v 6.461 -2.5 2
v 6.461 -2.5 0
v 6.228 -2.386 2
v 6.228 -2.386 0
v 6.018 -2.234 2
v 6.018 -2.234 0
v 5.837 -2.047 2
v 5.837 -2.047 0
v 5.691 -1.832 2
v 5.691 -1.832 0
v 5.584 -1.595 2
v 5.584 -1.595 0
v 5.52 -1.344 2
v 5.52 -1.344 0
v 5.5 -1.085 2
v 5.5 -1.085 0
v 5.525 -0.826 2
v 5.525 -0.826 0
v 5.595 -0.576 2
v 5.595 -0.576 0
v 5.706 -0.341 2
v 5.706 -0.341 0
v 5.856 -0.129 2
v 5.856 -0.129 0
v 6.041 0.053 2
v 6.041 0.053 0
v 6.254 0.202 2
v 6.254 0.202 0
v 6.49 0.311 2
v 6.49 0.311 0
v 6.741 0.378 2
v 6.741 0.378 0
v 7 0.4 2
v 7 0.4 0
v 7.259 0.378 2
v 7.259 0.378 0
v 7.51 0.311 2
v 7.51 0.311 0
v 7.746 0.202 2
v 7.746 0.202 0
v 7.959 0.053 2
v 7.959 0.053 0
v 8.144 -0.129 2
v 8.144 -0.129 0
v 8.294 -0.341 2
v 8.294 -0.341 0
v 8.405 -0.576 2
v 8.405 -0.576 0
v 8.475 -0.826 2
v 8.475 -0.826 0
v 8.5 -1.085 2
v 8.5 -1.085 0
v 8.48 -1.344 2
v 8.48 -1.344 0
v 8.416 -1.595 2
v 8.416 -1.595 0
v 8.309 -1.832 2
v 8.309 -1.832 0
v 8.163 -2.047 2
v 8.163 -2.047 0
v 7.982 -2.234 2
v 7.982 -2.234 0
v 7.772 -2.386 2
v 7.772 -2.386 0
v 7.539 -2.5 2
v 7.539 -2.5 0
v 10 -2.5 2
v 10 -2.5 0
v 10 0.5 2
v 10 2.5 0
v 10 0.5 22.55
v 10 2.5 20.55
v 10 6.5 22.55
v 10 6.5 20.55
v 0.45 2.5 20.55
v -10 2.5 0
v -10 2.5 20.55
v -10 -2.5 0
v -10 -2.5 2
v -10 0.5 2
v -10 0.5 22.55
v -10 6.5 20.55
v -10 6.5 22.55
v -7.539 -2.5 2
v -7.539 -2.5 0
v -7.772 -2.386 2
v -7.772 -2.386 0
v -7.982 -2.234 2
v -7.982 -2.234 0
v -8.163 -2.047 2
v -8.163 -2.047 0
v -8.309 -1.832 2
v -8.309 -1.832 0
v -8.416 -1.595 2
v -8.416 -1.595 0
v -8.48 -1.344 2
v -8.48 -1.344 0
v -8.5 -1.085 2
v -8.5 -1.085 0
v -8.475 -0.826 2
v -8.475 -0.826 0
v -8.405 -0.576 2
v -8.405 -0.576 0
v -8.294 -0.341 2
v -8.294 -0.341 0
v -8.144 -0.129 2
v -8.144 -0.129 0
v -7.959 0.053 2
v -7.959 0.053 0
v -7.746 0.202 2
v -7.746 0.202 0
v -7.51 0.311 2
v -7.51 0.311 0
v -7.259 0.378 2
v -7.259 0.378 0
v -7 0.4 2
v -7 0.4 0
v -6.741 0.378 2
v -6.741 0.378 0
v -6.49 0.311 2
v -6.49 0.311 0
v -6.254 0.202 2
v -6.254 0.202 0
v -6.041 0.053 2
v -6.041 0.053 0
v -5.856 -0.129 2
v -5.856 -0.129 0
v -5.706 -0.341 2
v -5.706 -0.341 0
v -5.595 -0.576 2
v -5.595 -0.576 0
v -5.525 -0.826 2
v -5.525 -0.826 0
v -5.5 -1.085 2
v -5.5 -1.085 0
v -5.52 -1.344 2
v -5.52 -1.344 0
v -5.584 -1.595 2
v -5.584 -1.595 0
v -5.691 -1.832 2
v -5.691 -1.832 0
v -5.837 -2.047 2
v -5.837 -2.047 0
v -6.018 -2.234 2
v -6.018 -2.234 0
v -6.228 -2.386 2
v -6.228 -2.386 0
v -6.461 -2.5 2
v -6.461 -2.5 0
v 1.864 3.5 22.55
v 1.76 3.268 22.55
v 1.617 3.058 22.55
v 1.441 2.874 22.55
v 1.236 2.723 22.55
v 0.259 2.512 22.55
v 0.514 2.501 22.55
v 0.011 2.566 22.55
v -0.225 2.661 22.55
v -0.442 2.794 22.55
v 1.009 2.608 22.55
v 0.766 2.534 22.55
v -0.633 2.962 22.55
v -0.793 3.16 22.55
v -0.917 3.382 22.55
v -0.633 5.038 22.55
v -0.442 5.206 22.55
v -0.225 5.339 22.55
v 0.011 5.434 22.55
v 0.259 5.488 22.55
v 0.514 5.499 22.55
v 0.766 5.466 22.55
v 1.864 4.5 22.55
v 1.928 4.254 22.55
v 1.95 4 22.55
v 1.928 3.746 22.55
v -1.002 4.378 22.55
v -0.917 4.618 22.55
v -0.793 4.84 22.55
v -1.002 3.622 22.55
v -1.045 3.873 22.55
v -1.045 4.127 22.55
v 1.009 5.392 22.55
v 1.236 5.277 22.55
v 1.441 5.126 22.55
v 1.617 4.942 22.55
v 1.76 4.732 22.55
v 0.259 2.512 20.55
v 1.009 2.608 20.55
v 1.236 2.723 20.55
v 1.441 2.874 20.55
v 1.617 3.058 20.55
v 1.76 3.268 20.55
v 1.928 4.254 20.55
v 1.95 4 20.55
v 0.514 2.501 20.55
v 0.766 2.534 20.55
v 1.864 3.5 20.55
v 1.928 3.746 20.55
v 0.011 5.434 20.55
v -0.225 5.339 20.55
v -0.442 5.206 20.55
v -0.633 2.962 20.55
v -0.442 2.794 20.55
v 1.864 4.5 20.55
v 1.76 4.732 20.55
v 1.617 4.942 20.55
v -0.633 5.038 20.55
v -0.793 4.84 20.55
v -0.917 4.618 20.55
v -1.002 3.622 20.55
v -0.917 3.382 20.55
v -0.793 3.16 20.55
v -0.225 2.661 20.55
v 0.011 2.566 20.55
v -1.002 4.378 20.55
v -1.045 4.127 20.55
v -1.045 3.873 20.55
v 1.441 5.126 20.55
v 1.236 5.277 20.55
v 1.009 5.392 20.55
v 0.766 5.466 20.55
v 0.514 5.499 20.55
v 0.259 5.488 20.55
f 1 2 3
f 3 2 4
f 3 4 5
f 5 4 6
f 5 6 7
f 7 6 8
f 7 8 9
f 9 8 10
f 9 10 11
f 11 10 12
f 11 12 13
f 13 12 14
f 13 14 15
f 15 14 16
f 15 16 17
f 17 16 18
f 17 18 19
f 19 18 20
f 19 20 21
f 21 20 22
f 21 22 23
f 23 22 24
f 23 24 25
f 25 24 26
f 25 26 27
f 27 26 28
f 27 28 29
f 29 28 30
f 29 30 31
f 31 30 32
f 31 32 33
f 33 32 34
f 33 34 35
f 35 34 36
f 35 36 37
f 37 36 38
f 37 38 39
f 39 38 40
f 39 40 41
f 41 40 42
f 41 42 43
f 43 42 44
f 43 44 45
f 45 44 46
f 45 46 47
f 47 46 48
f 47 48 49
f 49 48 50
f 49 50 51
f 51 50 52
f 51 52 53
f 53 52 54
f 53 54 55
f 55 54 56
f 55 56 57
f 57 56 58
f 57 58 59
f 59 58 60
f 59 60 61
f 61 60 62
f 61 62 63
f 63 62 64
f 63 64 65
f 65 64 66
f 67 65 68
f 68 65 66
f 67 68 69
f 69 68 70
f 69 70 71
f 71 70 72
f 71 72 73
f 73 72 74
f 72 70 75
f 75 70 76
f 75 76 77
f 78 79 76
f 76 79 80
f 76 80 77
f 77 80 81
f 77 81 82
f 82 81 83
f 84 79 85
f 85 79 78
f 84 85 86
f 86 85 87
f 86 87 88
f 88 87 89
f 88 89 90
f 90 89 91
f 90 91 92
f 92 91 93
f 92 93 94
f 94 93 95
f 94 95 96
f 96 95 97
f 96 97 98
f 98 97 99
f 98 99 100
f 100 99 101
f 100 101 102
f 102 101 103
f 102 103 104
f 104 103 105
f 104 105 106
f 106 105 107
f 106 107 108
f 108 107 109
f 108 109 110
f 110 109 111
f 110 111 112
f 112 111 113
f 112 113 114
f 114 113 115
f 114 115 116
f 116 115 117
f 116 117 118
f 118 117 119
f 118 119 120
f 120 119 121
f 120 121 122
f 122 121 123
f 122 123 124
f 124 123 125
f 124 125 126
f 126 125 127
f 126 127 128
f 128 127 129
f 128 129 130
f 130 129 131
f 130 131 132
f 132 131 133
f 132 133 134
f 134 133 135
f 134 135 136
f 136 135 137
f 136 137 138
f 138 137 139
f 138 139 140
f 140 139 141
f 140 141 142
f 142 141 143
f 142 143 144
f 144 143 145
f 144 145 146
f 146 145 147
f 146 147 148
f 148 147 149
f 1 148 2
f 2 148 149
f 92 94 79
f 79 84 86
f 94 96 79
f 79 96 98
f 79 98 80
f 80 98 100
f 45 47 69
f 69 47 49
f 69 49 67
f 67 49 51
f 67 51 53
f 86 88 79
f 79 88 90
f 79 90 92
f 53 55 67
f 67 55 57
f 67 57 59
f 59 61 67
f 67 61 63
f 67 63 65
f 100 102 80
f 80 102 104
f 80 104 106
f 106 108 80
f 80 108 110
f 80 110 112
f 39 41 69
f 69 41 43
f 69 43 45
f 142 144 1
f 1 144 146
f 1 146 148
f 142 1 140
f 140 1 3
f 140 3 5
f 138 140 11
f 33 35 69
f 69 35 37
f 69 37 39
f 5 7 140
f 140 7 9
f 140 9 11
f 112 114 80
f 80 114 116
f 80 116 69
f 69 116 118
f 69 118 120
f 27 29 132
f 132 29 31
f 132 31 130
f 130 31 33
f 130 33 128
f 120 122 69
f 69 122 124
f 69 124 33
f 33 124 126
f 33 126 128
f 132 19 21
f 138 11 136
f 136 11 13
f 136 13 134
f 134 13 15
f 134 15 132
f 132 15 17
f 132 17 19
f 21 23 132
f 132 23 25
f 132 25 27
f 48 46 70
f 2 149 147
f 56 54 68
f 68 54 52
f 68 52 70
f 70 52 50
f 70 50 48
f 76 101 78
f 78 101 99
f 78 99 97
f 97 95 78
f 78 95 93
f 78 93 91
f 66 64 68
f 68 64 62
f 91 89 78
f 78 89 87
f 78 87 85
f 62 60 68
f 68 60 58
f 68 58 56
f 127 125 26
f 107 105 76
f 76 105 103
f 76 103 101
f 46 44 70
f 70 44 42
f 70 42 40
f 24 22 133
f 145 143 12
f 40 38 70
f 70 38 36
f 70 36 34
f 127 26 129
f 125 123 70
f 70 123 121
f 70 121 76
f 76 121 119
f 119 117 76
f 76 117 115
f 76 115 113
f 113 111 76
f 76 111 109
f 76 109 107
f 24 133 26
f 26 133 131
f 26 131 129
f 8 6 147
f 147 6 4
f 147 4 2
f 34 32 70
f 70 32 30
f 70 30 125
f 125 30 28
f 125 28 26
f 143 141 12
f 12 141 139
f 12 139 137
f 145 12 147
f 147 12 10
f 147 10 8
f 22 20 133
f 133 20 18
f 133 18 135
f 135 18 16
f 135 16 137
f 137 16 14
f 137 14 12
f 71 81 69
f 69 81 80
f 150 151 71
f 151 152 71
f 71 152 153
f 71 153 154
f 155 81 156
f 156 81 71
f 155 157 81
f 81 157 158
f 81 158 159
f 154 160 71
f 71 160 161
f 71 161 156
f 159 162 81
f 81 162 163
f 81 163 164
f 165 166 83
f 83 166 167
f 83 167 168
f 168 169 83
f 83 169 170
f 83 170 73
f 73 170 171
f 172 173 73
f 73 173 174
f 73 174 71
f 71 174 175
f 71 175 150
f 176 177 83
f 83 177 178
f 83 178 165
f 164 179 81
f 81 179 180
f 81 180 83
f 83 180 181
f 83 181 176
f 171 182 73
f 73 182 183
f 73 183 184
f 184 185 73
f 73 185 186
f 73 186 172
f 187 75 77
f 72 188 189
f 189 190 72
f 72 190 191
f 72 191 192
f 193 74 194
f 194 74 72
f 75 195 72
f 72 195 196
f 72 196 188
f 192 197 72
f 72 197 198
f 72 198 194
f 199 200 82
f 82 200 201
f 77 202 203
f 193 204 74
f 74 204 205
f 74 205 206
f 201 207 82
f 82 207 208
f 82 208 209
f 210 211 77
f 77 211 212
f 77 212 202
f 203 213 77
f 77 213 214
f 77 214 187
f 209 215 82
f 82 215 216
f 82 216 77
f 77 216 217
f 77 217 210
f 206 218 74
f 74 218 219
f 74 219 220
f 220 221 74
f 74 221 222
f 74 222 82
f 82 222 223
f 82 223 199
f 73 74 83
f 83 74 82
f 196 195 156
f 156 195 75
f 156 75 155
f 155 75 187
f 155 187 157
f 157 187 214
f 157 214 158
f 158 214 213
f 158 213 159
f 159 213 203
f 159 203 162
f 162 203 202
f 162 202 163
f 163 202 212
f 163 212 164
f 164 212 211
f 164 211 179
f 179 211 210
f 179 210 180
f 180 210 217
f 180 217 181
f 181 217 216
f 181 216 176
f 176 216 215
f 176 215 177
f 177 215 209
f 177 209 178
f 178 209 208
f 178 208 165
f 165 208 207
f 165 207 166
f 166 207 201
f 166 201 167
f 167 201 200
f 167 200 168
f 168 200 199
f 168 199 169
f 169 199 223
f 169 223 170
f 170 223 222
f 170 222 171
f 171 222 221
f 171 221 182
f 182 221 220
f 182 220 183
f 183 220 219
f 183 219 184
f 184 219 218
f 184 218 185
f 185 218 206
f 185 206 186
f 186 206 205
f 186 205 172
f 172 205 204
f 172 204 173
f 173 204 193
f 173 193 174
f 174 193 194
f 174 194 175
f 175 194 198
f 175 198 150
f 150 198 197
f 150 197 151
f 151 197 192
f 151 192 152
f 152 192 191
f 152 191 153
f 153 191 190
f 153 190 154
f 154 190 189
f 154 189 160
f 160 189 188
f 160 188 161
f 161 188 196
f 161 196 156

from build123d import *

# Parameters (mm, degrees)
BOSS_EXTRU_2_DEPTH      = 2
ESQUISSE2_W             = 20
ESQUISSE2_H             = 2
BOSS_EXTRU_3_DEPTH      = 20.55
ESQUISSE3_W             = 20
ESQUISSE3_H             = 2
BOSS_EXTRU_4_DEPTH      = 4
ESQUISSE4_R             = 1.5
ENL_V_MAT_EXTRU_1_DEPTH = 4


with BuildPart() as part:
    # Esquisse1 → Boss.-Extru.2 (new body)
    with BuildSketch(Plane.XY):
        with BuildLine():
            Line((-10, 2.5), (-10, -2.5))
            Line((-10, -2.5), (-7.538516481, -2.5))
            ThreePointArc((-7.538516481, -2.5), (-7.849183513, 0.136481848), (-5.5, -1.1))
            ThreePointArc((-5.5, -1.1), (-5.763518152, -1.949183513), (-6.461483519, -2.5))
            Line((-6.461483519, -2.5), (6.461483519, -2.5))
            ThreePointArc((6.461483519, -2.5), (6.150816487, 0.136481848), (8.5, -1.1))
            ThreePointArc((8.5, -1.1), (8.236481848, -1.949183513), (7.538516481, -2.5))
            Line((7.538516481, -2.5), (10, -2.5))
            Line((10, -2.5), (10, 2.5))
            Line((10, 2.5), (-10, 2.5))
        make_face()
    extrude(amount=BOSS_EXTRU_2_DEPTH)

    # Esquisse2 → Boss.-Extru.3 (add)
    with BuildSketch(Plane.XY.offset(2)):
        with Locations((0, 1.5)):
            Rectangle(ESQUISSE2_W, ESQUISSE2_H)
    extrude(amount=BOSS_EXTRU_3_DEPTH)

    # Esquisse3 → Boss.-Extru.4 (add)
    with BuildSketch(Plane(origin=(0, 2.5, 0), x_dir=(1, 0, 0), z_dir=(0, 1, 0))):
        with Locations((0, -21.55)):
            Rectangle(ESQUISSE3_W, ESQUISSE3_H)
    extrude(amount=BOSS_EXTRU_4_DEPTH)

    # Esquisse4 → Enlèv. mat.-Extru.1 (cut)
    with BuildSketch(Plane.XY.offset(22.55)):
        with Locations((0.45, 4)):
            Circle(ESQUISSE4_R)
    extrude(amount=-ENL_V_MAT_EXTRU_1_DEPTH, mode=Mode.SUBTRACT)


solid = part.part
